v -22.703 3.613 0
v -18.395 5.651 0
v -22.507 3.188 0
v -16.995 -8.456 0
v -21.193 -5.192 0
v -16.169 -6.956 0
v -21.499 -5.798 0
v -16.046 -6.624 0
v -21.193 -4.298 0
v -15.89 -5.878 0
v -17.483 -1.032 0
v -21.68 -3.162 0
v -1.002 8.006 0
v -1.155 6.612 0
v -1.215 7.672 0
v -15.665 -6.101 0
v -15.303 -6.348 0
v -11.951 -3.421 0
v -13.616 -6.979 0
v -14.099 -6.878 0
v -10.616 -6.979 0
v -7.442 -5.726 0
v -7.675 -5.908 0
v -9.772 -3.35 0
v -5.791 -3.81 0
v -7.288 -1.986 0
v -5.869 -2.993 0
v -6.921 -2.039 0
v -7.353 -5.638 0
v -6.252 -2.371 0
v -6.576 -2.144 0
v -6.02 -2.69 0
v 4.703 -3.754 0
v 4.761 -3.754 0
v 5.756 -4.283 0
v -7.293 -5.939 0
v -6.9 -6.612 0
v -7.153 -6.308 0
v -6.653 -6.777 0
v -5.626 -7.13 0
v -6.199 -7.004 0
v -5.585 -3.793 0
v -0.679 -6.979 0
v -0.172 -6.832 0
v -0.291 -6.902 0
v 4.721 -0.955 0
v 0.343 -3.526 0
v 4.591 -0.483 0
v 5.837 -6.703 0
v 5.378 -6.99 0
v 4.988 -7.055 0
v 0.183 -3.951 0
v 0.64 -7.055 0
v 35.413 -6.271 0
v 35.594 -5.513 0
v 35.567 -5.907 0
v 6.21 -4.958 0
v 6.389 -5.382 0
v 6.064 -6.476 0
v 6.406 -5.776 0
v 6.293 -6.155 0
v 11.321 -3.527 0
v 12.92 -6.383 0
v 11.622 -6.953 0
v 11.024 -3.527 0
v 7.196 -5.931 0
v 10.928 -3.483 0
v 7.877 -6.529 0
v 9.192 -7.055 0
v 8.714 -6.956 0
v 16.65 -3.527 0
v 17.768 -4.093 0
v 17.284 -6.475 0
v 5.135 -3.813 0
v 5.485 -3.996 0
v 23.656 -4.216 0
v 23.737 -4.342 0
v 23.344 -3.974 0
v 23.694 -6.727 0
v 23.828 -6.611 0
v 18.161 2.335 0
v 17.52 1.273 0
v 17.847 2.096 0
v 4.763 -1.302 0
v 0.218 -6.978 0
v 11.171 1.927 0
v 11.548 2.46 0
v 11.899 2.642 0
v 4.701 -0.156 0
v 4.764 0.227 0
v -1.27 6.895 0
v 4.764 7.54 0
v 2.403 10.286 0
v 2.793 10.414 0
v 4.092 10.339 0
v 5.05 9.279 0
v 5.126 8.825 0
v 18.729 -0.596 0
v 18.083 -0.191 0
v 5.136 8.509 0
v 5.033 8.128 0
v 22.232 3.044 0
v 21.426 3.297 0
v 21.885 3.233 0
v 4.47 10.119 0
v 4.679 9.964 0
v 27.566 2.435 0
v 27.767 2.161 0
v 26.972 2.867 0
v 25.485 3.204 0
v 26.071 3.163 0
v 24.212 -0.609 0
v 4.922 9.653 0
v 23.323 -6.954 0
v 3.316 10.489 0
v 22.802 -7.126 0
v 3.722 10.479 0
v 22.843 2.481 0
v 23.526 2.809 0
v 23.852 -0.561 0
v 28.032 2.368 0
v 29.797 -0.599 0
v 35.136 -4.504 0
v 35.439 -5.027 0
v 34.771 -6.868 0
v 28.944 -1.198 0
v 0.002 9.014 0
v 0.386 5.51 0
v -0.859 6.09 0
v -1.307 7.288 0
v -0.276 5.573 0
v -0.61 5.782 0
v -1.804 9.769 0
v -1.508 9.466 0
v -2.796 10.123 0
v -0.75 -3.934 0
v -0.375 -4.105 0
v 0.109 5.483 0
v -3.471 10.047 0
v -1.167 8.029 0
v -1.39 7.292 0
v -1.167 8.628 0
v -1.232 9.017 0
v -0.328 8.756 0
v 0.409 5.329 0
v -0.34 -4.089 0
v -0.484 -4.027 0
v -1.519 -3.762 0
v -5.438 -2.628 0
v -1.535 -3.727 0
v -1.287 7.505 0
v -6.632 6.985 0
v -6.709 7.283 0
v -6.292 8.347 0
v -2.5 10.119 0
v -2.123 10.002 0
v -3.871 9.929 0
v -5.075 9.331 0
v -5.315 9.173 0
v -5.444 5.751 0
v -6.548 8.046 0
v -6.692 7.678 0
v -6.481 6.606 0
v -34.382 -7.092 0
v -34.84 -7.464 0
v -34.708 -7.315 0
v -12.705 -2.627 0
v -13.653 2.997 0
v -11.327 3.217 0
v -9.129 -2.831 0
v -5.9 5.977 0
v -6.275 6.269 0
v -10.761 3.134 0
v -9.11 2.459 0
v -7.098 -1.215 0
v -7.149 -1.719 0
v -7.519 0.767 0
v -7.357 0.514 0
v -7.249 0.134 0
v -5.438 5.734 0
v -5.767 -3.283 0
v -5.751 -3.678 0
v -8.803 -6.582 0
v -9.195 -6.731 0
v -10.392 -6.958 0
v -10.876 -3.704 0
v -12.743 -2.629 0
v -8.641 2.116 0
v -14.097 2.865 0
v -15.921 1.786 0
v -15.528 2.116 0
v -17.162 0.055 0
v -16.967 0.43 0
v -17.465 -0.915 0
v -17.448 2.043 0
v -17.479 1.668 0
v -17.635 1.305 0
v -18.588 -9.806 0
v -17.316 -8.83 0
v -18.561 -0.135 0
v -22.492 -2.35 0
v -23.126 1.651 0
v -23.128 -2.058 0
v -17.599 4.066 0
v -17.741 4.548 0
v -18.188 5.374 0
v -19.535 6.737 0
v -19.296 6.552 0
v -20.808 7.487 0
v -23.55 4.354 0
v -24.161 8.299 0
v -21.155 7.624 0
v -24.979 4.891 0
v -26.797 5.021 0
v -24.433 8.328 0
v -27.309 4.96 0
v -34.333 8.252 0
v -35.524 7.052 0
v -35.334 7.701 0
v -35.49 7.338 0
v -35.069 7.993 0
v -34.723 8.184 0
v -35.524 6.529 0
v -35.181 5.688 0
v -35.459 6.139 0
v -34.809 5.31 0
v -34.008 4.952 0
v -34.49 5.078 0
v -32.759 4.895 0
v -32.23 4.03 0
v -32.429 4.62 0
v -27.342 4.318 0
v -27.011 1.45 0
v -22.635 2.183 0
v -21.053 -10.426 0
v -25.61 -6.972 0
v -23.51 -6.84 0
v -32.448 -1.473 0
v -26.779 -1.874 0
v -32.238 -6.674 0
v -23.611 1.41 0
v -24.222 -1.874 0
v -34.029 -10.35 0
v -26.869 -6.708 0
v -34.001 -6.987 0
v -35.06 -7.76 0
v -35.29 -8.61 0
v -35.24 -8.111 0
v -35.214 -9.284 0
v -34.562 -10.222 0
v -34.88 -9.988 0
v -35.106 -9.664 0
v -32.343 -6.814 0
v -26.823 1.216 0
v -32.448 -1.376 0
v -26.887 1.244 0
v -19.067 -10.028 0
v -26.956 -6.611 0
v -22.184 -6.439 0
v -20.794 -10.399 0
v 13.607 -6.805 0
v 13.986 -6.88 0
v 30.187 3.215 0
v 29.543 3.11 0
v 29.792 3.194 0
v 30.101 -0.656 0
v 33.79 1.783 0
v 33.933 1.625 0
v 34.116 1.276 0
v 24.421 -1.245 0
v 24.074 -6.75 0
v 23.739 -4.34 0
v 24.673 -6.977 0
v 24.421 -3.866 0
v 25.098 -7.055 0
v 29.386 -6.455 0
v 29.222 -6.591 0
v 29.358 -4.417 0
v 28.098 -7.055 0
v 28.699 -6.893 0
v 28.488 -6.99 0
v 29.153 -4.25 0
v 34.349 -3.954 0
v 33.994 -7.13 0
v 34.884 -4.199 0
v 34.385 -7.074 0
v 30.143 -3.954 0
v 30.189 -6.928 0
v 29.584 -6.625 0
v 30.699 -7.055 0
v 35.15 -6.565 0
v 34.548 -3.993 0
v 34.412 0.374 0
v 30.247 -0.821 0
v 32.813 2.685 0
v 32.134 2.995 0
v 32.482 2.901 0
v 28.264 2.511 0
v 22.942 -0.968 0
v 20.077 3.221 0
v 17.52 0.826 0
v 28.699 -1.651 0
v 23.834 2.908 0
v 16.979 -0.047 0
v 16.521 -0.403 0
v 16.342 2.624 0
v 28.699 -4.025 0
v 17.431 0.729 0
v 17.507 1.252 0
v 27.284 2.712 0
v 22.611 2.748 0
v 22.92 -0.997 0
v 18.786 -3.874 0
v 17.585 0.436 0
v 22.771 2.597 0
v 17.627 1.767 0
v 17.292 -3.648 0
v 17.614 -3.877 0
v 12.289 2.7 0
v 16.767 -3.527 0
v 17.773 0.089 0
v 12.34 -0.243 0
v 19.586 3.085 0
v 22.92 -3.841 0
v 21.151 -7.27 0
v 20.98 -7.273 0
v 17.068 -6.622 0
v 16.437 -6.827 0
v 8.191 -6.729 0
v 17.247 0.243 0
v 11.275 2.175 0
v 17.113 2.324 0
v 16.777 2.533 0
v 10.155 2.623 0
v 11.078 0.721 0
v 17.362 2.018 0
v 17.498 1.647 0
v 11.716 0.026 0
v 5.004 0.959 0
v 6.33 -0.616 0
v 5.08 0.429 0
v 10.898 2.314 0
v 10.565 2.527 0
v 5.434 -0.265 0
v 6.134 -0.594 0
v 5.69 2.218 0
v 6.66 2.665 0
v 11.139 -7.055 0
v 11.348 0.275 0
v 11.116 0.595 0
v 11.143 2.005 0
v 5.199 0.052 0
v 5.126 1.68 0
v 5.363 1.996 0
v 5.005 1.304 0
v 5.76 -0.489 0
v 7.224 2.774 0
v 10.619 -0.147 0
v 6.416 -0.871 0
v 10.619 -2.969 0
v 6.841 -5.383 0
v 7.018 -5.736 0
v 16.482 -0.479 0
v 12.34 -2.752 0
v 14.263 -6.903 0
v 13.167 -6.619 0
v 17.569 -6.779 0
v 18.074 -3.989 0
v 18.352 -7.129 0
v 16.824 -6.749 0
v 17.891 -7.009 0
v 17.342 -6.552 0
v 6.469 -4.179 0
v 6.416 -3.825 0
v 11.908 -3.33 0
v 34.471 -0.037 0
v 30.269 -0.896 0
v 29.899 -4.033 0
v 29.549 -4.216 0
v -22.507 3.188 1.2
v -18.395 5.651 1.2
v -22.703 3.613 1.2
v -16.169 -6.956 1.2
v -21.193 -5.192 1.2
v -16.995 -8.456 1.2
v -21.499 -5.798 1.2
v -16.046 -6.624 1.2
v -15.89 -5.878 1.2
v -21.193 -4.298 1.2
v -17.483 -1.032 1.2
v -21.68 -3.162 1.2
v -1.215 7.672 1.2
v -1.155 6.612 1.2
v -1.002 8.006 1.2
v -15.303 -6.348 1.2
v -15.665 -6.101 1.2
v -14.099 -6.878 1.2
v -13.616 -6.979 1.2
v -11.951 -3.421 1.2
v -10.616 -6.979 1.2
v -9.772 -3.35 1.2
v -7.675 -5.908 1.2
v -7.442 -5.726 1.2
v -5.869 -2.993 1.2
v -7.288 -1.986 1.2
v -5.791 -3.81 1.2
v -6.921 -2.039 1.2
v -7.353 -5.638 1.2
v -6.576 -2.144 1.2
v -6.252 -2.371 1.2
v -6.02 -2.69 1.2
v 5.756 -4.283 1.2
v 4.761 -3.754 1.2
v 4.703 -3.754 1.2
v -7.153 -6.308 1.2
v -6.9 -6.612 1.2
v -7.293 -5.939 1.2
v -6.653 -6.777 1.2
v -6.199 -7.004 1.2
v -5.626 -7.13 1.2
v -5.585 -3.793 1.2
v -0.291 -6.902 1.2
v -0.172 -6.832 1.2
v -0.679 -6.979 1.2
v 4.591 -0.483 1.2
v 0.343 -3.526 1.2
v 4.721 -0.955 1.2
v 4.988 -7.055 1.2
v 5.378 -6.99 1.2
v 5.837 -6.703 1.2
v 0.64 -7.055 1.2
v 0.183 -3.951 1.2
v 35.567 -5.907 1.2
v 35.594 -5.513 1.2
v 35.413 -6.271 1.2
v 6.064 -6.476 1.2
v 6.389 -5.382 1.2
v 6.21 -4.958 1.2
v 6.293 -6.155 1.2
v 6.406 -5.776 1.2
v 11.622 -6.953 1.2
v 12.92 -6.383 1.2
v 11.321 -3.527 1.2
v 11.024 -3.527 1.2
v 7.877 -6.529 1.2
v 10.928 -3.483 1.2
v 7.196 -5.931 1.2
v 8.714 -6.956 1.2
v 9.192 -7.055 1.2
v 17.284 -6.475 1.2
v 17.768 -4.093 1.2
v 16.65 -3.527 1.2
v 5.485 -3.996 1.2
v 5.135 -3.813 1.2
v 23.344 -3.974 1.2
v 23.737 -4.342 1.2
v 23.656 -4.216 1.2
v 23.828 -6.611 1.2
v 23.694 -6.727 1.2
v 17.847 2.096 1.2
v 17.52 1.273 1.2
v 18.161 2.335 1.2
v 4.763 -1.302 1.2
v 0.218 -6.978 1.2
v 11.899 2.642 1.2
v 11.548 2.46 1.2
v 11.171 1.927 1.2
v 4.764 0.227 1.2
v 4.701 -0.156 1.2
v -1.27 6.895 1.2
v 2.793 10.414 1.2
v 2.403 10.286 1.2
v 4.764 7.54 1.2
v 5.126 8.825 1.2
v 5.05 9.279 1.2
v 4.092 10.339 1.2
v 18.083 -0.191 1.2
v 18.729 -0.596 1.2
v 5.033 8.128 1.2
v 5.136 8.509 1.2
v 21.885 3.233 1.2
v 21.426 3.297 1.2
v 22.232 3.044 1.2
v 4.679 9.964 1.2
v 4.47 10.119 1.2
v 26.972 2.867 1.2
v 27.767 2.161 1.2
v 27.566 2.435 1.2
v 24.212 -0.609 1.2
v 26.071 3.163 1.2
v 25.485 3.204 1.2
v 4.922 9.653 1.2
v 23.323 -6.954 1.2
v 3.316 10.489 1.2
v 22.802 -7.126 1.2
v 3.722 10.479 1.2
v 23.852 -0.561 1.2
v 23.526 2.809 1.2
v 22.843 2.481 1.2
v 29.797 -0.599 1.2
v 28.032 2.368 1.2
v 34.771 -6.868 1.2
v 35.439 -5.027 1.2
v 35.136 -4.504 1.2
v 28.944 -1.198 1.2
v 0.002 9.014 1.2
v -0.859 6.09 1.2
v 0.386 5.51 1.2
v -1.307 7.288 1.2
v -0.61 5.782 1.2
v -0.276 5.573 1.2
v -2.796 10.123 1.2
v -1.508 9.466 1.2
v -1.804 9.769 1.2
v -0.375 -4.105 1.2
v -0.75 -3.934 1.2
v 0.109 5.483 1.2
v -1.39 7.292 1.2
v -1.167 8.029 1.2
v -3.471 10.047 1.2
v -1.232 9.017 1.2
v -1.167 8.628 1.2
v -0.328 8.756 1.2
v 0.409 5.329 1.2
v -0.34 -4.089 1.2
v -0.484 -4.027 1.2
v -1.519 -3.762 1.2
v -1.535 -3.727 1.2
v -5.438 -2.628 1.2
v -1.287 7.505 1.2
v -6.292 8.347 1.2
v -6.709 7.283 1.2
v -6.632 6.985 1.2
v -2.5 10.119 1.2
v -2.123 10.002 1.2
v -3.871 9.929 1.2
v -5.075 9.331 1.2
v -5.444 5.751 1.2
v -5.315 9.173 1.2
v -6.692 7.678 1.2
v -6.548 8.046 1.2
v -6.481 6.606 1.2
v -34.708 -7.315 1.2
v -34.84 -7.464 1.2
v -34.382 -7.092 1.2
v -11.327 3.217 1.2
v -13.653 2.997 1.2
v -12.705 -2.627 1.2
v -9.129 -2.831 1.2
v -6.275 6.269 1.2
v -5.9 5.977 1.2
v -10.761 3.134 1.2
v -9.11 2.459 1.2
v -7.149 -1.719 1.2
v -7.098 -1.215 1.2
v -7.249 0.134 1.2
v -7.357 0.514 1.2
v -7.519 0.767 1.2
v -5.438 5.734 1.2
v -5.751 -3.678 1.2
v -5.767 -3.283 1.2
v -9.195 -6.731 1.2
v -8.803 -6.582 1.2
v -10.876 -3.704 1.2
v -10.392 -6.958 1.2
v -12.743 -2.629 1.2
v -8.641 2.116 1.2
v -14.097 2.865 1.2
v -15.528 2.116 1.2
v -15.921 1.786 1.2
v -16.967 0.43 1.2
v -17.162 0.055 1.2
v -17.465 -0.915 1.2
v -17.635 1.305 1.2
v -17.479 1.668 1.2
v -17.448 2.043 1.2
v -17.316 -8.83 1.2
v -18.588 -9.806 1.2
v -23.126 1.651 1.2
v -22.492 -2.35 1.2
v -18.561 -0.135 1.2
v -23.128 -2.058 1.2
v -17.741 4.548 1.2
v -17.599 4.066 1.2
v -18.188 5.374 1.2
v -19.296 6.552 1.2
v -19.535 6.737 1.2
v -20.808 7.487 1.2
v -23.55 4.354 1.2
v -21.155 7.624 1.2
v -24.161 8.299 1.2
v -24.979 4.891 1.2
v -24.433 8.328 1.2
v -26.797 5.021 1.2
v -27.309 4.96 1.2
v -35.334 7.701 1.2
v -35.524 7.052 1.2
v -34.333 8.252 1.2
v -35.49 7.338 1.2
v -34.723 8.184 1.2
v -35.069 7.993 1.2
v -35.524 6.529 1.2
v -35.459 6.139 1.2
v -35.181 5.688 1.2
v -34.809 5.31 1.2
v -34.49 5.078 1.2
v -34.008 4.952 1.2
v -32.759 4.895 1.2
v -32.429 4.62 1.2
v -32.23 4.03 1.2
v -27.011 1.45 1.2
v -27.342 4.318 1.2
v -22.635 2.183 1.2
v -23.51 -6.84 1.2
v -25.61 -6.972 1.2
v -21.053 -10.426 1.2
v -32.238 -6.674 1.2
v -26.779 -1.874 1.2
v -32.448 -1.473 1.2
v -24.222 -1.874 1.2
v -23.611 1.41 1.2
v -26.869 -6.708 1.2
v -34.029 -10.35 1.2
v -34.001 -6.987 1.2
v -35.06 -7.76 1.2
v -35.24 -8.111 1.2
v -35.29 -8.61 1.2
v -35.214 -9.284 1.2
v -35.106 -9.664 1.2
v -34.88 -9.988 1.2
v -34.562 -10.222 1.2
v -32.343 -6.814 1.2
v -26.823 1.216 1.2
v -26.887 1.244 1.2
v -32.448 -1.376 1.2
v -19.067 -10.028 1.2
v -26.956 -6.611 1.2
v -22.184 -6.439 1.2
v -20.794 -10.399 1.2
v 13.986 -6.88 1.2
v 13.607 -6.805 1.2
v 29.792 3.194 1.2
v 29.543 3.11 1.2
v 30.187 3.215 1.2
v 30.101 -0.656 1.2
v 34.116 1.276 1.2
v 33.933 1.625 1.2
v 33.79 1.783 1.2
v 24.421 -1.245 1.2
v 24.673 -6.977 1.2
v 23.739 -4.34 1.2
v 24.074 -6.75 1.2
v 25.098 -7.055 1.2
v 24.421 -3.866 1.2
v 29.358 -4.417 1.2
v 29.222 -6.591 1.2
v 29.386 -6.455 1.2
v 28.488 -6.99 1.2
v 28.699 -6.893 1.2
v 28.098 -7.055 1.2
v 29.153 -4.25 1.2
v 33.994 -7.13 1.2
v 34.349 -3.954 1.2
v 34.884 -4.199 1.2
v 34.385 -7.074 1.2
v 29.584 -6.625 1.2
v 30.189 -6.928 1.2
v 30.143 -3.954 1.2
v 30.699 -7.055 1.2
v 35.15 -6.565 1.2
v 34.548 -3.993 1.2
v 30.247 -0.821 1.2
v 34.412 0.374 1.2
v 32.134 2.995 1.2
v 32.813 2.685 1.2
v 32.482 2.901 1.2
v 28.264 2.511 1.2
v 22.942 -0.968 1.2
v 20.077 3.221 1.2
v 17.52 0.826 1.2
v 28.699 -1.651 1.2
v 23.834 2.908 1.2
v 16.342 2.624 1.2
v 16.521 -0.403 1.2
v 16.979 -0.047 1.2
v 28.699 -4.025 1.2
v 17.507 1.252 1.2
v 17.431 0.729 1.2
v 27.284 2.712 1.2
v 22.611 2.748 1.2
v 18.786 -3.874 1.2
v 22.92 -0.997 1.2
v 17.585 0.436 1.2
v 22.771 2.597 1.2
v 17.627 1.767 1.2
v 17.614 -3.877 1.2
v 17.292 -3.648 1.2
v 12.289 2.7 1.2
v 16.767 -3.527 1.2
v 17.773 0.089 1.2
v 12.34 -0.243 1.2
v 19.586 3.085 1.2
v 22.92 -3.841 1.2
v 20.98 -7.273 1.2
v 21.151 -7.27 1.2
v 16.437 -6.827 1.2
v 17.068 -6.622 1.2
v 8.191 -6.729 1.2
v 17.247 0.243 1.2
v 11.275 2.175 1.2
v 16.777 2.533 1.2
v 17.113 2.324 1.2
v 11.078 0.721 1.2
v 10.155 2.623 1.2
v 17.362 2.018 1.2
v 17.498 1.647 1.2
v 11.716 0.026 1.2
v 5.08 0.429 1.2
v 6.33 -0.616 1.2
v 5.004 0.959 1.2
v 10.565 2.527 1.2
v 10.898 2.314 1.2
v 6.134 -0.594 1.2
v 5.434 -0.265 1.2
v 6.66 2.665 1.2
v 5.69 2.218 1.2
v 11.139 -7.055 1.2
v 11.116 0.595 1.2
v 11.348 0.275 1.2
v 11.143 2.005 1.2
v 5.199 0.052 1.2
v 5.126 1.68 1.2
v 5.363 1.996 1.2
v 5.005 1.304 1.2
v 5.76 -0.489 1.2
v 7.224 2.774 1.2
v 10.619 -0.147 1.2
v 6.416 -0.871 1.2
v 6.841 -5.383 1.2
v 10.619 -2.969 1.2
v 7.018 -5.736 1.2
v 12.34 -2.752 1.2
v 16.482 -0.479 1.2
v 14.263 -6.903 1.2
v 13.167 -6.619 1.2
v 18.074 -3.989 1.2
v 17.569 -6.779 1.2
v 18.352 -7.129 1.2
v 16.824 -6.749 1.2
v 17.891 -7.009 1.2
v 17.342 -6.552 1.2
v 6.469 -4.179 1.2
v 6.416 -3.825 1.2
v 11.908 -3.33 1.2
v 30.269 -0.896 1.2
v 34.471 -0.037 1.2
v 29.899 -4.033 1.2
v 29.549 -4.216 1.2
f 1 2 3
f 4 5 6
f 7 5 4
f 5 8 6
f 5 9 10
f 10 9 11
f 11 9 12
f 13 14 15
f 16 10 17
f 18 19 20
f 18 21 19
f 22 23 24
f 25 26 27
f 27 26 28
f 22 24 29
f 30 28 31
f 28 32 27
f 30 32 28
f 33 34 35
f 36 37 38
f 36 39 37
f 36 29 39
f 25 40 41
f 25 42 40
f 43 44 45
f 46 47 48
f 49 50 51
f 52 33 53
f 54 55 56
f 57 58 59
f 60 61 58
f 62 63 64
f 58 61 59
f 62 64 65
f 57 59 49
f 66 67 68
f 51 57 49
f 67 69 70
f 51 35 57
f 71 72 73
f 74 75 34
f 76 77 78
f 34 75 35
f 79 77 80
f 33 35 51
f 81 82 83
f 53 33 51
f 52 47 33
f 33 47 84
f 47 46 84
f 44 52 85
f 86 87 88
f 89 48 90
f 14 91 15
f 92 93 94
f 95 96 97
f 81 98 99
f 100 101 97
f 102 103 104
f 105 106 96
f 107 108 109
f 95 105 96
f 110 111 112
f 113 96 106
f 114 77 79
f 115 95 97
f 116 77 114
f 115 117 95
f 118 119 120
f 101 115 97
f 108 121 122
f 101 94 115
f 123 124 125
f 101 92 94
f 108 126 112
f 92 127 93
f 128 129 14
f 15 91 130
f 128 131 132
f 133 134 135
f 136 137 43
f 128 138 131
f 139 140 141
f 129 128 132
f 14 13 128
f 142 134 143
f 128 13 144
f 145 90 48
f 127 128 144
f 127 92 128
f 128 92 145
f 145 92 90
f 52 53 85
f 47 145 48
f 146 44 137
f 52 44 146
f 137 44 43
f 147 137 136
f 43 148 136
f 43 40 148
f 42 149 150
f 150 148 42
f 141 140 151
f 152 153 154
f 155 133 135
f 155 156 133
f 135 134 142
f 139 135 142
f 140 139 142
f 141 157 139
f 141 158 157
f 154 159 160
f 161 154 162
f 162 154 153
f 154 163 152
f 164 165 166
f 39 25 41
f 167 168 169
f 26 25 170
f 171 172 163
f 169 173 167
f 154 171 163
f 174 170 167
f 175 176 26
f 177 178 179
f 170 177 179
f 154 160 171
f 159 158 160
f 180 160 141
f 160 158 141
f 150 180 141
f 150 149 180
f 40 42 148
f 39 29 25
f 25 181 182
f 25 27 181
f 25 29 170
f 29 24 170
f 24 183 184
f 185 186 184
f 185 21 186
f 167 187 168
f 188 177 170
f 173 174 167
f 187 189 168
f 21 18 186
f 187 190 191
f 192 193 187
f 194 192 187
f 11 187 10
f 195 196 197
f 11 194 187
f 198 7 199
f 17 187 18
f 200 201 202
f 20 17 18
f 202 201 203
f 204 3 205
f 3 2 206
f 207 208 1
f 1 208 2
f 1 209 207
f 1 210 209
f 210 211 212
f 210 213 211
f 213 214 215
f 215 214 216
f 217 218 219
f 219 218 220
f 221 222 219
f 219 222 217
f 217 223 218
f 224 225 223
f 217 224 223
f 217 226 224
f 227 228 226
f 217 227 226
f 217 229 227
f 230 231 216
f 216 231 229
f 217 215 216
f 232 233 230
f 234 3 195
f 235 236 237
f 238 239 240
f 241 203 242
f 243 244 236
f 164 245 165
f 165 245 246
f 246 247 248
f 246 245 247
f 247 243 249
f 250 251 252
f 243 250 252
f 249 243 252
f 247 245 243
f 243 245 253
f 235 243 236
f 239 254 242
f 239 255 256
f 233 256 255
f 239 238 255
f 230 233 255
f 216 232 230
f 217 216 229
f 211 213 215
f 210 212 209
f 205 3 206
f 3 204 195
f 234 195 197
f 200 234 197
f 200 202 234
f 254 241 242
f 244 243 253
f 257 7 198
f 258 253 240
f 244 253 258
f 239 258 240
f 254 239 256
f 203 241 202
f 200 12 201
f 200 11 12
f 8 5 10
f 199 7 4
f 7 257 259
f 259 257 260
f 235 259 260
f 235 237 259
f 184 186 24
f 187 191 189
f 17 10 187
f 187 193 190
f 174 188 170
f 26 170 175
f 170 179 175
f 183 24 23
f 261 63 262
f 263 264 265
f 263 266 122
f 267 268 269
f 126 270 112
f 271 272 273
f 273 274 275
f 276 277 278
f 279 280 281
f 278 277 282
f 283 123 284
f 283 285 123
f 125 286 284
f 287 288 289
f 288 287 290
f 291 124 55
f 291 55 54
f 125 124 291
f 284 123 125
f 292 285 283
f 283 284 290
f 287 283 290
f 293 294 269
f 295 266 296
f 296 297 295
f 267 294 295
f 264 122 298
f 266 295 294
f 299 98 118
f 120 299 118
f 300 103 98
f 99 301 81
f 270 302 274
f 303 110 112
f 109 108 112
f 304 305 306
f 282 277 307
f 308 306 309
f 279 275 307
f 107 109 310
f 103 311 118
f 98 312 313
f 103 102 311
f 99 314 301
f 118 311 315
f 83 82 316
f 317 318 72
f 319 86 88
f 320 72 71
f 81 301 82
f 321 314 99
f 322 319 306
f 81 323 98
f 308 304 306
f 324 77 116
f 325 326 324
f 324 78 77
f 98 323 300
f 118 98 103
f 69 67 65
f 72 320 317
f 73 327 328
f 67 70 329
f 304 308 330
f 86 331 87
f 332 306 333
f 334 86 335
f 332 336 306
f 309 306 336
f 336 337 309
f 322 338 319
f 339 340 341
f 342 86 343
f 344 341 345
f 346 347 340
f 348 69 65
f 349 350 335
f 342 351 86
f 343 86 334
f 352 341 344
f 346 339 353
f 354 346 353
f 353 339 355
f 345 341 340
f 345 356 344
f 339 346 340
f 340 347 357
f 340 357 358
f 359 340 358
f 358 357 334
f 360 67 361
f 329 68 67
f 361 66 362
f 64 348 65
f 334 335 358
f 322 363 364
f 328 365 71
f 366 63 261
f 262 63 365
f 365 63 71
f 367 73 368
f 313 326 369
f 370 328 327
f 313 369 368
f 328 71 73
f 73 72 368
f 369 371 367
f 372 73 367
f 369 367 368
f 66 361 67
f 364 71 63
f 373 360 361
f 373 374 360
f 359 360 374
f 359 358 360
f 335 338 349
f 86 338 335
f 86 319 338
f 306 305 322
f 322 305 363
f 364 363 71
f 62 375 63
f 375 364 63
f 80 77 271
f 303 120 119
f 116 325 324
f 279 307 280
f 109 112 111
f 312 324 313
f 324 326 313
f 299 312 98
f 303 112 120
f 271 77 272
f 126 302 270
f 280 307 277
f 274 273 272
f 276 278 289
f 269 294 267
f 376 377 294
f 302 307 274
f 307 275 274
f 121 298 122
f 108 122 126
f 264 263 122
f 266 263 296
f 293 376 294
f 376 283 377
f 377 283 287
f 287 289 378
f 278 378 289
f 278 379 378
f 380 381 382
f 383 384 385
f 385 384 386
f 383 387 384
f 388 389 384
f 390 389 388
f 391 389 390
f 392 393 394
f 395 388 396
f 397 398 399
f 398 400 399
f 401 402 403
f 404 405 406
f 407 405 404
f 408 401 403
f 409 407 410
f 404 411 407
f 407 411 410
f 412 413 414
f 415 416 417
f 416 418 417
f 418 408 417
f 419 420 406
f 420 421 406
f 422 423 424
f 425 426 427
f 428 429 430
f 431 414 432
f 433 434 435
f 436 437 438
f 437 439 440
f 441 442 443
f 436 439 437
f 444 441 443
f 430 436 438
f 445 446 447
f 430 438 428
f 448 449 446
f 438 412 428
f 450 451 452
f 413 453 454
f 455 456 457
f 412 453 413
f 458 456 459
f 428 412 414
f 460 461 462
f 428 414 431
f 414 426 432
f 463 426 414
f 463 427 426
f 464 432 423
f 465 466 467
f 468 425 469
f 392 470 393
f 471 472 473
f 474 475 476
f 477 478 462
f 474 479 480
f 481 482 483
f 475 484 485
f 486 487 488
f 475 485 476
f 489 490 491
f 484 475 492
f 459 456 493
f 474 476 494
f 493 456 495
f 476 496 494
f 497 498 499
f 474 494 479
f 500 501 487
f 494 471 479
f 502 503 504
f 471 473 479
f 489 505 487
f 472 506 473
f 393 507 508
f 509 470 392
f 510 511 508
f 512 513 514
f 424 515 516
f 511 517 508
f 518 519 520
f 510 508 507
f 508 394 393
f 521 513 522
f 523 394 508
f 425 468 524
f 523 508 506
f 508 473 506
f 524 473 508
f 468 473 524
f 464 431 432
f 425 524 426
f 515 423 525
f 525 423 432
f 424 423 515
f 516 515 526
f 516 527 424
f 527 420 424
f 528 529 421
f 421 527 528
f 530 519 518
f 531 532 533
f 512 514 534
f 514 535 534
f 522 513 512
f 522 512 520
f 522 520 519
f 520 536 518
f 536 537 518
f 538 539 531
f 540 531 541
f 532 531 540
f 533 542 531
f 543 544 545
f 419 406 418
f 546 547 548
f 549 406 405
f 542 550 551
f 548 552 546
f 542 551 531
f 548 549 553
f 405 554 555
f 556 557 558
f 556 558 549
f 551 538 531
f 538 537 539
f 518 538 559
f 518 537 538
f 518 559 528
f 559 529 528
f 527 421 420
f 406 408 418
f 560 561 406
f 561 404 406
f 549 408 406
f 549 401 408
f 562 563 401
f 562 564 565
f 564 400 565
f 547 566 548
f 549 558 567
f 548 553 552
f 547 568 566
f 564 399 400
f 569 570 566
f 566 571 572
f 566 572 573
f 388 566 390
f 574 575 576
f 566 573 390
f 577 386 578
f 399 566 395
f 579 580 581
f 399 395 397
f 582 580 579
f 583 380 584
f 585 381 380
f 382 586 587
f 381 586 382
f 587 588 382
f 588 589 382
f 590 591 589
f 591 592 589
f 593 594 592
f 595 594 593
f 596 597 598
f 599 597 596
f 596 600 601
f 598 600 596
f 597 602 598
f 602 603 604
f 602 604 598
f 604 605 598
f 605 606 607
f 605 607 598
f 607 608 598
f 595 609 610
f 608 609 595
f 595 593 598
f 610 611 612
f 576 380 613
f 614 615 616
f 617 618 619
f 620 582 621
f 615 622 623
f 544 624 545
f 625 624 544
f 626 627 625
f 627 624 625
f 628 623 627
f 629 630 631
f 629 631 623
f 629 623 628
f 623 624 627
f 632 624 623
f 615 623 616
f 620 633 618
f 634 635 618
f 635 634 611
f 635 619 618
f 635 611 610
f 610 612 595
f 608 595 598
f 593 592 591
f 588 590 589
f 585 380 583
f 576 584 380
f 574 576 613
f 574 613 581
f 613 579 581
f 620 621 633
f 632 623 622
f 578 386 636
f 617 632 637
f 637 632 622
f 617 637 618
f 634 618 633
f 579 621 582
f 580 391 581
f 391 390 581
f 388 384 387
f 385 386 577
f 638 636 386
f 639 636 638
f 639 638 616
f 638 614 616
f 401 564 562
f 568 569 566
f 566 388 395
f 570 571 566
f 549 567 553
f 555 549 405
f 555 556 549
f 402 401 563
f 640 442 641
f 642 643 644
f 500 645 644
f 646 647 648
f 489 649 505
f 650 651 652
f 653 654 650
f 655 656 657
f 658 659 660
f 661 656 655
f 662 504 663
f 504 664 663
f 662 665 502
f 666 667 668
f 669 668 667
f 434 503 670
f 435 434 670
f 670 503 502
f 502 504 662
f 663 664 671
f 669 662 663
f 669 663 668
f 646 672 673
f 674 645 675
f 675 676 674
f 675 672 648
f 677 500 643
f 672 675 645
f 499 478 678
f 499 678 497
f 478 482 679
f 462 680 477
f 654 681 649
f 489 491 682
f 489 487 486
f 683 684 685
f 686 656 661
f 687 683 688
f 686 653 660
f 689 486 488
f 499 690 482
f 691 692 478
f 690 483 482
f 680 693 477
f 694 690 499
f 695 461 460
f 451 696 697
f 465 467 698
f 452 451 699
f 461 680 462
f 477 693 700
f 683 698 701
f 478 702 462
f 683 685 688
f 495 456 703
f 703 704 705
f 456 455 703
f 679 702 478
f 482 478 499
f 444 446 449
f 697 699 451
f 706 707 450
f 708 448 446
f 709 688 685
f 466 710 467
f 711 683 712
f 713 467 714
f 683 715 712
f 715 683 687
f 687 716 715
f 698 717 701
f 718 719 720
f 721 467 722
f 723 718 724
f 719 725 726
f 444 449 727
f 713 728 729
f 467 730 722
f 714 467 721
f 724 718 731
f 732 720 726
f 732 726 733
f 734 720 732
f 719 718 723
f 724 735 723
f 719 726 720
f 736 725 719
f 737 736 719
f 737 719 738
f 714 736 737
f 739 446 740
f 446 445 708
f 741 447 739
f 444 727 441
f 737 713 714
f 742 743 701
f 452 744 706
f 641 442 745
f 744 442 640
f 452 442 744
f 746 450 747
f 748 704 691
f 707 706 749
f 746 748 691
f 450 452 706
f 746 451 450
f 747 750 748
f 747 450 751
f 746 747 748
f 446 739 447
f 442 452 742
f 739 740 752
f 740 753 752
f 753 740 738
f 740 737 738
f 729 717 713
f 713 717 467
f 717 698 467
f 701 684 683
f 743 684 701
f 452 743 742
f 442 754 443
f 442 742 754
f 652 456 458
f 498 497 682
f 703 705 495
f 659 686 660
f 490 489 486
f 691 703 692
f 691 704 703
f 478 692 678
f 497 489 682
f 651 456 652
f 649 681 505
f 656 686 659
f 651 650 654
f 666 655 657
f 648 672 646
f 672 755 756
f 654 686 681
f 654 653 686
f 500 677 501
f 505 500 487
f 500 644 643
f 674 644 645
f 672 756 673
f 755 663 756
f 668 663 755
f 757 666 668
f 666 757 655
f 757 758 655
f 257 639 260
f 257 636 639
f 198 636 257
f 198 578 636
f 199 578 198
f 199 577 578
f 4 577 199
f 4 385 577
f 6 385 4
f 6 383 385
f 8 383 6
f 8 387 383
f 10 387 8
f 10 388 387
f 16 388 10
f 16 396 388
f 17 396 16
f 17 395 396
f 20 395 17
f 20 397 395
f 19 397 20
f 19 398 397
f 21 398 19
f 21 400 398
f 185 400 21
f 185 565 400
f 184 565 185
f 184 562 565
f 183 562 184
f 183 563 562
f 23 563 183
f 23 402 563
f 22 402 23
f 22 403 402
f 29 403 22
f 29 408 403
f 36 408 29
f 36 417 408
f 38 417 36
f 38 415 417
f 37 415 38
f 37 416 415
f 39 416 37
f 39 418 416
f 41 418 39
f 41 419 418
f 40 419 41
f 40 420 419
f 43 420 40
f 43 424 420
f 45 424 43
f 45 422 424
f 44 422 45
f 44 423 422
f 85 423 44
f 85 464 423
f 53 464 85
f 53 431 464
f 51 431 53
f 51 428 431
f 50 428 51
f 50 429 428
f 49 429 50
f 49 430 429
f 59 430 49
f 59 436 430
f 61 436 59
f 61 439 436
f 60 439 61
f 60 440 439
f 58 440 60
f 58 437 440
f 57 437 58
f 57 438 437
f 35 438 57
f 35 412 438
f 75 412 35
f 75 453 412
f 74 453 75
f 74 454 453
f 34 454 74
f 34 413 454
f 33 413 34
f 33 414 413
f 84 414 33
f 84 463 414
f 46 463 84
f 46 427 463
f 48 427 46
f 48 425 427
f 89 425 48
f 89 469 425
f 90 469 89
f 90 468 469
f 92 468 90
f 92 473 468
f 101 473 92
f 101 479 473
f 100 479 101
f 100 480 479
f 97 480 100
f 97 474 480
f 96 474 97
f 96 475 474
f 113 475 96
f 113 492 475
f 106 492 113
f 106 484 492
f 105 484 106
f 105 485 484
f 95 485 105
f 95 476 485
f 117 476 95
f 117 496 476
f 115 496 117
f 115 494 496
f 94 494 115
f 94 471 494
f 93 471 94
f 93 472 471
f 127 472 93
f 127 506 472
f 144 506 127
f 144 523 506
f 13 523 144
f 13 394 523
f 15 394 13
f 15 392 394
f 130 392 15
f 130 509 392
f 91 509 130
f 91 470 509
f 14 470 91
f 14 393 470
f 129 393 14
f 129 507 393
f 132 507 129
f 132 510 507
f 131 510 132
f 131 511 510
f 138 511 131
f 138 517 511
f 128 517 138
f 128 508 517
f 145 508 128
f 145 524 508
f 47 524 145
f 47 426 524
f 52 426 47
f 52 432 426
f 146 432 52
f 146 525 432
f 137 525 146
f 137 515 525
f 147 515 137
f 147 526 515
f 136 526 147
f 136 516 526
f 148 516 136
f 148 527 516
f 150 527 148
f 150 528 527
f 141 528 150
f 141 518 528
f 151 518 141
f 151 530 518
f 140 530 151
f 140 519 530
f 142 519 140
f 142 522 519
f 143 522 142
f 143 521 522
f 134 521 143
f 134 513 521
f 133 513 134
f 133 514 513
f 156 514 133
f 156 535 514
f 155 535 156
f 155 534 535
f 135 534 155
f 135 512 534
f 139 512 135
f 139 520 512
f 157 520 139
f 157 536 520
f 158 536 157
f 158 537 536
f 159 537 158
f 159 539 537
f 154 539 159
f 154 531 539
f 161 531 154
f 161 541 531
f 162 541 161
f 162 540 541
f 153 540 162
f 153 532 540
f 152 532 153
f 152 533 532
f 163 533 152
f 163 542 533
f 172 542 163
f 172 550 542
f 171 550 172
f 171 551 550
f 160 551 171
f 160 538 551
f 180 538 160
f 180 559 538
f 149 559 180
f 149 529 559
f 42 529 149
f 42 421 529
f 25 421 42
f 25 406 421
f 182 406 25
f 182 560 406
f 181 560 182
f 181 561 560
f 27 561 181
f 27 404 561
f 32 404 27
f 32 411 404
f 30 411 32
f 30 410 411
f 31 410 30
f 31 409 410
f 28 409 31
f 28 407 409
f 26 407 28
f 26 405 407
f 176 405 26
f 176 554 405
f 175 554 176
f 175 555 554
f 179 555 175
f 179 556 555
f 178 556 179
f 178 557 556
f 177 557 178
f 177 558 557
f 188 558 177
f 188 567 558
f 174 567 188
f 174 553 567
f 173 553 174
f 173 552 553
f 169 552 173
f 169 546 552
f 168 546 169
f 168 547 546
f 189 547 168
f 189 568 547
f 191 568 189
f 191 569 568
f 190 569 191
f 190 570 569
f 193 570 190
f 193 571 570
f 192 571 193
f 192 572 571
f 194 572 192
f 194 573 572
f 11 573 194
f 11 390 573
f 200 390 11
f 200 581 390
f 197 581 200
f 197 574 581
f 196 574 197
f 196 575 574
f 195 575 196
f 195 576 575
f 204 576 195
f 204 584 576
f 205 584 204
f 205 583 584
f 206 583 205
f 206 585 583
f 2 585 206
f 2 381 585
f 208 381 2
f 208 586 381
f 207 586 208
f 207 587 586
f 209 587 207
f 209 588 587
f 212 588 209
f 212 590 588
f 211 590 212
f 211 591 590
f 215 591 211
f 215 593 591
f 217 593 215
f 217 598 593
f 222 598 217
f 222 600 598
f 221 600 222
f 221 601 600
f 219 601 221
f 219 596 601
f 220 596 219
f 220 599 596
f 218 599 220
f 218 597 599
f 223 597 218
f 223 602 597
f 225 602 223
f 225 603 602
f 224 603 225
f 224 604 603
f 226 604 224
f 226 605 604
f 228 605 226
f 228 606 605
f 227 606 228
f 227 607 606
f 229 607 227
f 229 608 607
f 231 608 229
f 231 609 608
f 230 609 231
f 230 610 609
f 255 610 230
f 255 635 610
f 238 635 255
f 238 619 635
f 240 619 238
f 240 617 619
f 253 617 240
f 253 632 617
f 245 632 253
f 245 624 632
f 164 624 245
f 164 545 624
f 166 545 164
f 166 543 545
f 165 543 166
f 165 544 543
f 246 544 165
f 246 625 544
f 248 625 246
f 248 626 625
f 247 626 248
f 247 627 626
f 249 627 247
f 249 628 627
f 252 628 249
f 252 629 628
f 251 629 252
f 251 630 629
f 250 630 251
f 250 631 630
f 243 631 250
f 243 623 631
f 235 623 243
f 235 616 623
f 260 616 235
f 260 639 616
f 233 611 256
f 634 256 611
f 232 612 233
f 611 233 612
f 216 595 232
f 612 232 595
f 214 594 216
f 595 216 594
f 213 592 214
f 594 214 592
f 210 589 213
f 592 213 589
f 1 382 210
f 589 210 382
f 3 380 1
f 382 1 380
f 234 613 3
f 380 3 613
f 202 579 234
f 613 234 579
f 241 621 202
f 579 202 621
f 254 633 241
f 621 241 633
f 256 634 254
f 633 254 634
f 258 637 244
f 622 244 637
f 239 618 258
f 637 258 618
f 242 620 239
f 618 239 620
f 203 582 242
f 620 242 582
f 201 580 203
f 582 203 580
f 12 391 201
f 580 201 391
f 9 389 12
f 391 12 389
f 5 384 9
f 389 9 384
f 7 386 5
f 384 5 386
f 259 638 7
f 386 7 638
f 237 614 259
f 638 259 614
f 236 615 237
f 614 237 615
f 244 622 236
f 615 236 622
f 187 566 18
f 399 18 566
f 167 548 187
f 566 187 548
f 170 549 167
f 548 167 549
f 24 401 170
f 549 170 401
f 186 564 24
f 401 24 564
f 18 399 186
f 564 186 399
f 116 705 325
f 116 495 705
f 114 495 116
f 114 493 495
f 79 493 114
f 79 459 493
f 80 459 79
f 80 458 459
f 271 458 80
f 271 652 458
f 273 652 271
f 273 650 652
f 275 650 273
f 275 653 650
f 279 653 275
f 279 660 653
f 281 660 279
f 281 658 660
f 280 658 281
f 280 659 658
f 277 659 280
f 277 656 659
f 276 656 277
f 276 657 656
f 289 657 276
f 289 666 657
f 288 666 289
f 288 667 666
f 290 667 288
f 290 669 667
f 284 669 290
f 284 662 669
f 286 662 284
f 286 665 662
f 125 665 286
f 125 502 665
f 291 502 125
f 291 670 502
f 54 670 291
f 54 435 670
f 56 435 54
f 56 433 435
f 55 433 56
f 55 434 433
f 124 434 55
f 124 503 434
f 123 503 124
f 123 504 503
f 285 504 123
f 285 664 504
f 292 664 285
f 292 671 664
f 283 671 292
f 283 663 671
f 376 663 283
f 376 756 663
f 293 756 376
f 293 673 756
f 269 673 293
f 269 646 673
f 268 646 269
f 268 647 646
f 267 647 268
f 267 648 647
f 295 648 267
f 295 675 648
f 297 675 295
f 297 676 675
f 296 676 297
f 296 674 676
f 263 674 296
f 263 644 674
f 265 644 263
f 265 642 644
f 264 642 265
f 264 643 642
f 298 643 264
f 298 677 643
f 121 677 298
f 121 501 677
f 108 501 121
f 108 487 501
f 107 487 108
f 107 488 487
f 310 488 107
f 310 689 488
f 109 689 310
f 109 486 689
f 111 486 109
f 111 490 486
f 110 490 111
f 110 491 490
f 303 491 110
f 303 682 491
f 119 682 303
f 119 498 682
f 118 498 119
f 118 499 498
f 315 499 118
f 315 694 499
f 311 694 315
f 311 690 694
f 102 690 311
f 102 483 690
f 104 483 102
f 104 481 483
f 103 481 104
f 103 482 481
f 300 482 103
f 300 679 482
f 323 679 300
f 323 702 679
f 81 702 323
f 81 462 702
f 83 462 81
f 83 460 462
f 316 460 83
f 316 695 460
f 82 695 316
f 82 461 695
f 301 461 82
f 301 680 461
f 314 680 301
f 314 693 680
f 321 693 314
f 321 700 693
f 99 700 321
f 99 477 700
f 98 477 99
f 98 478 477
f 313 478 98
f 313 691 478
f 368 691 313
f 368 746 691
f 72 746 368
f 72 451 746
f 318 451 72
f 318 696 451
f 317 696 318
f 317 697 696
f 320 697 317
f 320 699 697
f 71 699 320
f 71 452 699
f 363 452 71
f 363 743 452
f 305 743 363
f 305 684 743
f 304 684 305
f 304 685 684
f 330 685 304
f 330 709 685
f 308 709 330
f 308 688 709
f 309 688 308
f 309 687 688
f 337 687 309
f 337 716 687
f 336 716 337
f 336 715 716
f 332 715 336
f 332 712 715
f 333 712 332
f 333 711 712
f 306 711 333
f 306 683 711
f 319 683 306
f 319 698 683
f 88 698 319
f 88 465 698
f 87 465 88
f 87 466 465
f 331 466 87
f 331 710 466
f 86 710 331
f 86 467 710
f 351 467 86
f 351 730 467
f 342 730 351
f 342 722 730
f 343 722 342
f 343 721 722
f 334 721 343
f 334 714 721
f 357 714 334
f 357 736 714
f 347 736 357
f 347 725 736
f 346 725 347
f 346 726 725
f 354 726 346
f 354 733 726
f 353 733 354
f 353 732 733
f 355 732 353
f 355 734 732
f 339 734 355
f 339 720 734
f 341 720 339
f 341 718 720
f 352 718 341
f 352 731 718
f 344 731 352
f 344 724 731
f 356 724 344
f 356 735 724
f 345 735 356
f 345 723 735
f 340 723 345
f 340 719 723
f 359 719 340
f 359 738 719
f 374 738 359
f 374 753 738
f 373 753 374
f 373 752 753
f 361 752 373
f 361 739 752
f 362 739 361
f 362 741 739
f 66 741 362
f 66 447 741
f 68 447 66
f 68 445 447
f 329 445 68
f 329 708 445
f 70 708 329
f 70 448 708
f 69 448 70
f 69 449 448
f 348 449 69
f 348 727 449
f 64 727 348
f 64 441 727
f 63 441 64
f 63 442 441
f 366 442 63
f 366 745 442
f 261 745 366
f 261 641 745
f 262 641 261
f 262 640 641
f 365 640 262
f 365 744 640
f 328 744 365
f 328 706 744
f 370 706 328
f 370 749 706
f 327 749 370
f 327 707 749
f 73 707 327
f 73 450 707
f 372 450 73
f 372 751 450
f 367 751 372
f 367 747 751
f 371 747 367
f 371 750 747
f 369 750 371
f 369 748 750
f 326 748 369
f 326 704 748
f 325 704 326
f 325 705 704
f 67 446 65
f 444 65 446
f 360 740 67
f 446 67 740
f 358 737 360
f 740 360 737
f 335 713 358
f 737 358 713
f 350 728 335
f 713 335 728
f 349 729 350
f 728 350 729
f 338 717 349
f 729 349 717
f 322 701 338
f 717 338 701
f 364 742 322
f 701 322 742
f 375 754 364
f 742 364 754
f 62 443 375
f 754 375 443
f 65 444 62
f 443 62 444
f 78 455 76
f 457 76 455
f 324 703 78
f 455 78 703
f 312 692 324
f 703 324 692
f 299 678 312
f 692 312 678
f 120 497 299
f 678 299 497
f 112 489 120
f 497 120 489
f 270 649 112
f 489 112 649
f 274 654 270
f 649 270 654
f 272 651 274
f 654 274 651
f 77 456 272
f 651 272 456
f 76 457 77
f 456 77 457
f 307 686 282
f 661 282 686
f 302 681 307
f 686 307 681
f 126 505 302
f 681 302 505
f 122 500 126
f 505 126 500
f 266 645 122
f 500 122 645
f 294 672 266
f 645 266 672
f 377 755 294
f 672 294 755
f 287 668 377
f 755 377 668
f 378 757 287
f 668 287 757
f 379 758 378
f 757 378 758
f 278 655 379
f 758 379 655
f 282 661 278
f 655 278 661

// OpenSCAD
// file: bellum_text_traced.scad
// bellum_text_traced.scad
// "Bellum" lettering traced from the source logo image with
// OpenCV (4x cubic upscale, threshold, morphological cleanup,
// approxPolyDP 2px). Coordinates are centered, Y-up, and
// normalized to 100 units of total width.
// Regenerate with scratchpad/trace2_emit.py if retuning.

module bellum_traced_2d() {
    polygon(points=[[-49.89,10.25],[-49.89,9.49],[-49.35,8.94],[-46.95,8.83],[-45.64,7.74],[-45.09,6.11],[-45.42,-2.07],[-45.09,-10.25],[-46.07,-11.56],[-49.24,-11.89],[-49.56,-12.32],[-49.45,-13.30],[-30.59,-13.41],[-28.08,-12.87],[-26.23,-11.45],[-25.03,-9.27],[-24.48,-6.65],[-25.03,-4.80],[-26.01,-3.27],[-29.28,-0.55],[-27.10,2.84],[-27.32,5.78],[-27.97,6.98],[-29.28,8.29],[-31.13,9.38],[-35.50,10.36],[-40.62,-1.42],[-39.97,-0.98],[-35.06,-0.98],[-33.10,-1.31],[-31.68,-1.96],[-30.04,-3.60],[-29.06,-5.89],[-29.06,-7.96],[-29.83,-9.49],[-31.35,-10.91],[-33.86,-11.67],[-37.35,-11.89],[-39.97,-11.34],[-40.95,-10.25],[-41.38,8.40],[-40.84,8.83],[-38.99,9.05],[-35.93,8.83],[-33.32,7.85],[-31.57,6.32],[-30.92,4.91],[-31.24,2.40],[-32.55,0.98],[-33.86,0.33],[-39.31,0.00],[-40.29,0.44],[-40.95,1.53],[-41.49,6.22]], paths=[[0, 1, 2, 3, 4, 5, 6, 7, 8, 9, 10, 11, 12, 13, 14, 15, 16, 17, 18, 19, 20, 21, 22, 23, 24, 25], [26, 27, 28, 29, 30, 31, 32, 33, 34, 35, 36, 37, 38, 39], [40, 41, 42, 43, 44, 45, 46, 47, 48, 49, 50, 51, 52, 53]]);
    polygon(points=[[-21.76,1.53],[-23.28,-0.44],[-23.72,-1.85],[-23.72,-3.82],[-22.96,-6.22],[-21.54,-7.63],[-19.79,-8.40],[-15.43,-8.40],[-13.69,-8.07],[-12.05,-7.09],[-10.09,-5.13],[-10.31,-4.69],[-11.07,-4.58],[-13.36,-6.43],[-15.76,-7.20],[-18.27,-6.54],[-20.34,-4.47],[-20.77,-3.49],[-20.67,-2.62],[-20.01,-2.18],[-18.48,-2.07],[-12.70,-2.40],[-12.05,-1.96],[-12.27,0.00],[-13.90,1.96],[-16.30,2.94],[-19.68,2.62],[-20.34,-0.22],[-19.47,0.98],[-17.61,1.96],[-15.98,1.53],[-14.78,0.00],[-14.99,-0.76],[-15.98,-0.98],[-20.01,-0.98]], paths=[[0, 1, 2, 3, 4, 5, 6, 7, 8, 9, 10, 11, 12, 13, 14, 15, 16, 17, 18, 19, 20, 21, 22, 23, 24, 25, 26], [27, 28, 29, 30, 31, 32, 33, 34]]);
    polygon(points=[[-3.87,12.98],[-4.85,12.87],[-6.60,12.00],[-8.02,10.80],[-7.80,10.25],[-6.49,9.60],[-6.16,8.62],[-6.16,-3.93],[-6.49,-6.54],[-7.36,-7.20],[-8.67,-7.31],[-9.00,-7.74],[-8.89,-8.29],[-8.23,-8.62],[-1.04,-8.40],[-1.04,-7.85],[-1.47,-7.42],[-3.44,-6.98],[-3.98,-5.78],[-3.76,11.01],[-3.44,11.67],[-3.44,12.54]], paths=[[0, 1, 2, 3, 4, 5, 6, 7, 8, 9, 10, 11, 12, 13, 14, 15, 16, 17, 18, 19, 20, 21]]);
    polygon(points=[[5.07,13.52],[4.31,13.41],[0.82,11.56],[-0.16,10.47],[0.27,9.71],[1.47,10.03],[2.13,9.49],[2.34,7.85],[2.24,-5.45],[1.58,-7.20],[-0.05,-7.63],[0.05,-8.18],[0.93,-8.51],[7.25,-8.51],[7.58,-8.18],[6.92,-7.20],[6.05,-7.20],[5.07,-6.32],[5.18,-1.85],[4.85,-0.65],[5.18,0.33],[5.18,11.34],[5.73,12.54],[5.62,13.20]], paths=[[0, 1, 2, 3, 4, 5, 6, 7, 8, 9, 10, 11, 12, 13, 14, 15, 16, 17, 18, 19, 20, 21, 22, 23]]);
    polygon(points=[[9.00,1.64],[9.11,0.87],[10.09,0.76],[10.74,0.00],[11.07,-0.98],[11.07,-5.56],[11.61,-7.31],[12.60,-8.18],[13.36,-8.51],[16.19,-8.51],[18.92,-7.31],[19.47,-7.31],[20.12,-8.18],[20.67,-8.29],[23.83,-8.18],[24.48,-7.74],[24.37,-6.87],[23.17,-6.87],[22.52,-6.32],[22.19,-0.33],[22.63,0.55],[23.61,1.31],[23.72,2.07],[17.83,2.18],[17.72,1.64],[19.25,0.98],[19.68,0.22],[19.68,-4.58],[18.38,-6.32],[16.74,-6.87],[15.65,-6.87],[14.67,-6.43],[13.69,-4.80],[13.69,0.22],[14.67,2.07],[10.41,2.29]], paths=[[0, 1, 2, 3, 4, 5, 6, 7, 8, 9, 10, 11, 12, 13, 14, 15, 16, 17, 18, 19, 20, 21, 22, 23, 24, 25, 26, 27, 28, 29, 30, 31, 32, 33, 34, 35]]);
    polygon(points=[[27.21,1.85],[27.21,1.20],[28.95,0.11],[29.06,-6.22],[28.52,-7.20],[26.55,-7.52],[26.44,-8.29],[26.77,-8.62],[30.59,-8.83],[32.99,-8.62],[33.53,-8.29],[33.10,-7.31],[32.12,-7.20],[31.57,-6.65],[31.57,-0.87],[32.22,0.00],[34.41,0.98],[36.04,0.76],[36.70,0.11],[37.24,-1.53],[37.24,-6.00],[36.91,-6.76],[35.50,-7.74],[35.61,-8.18],[36.48,-8.51],[40.84,-8.51],[41.60,-8.07],[41.60,-7.74],[40.51,-7.20],[39.97,-6.43],[39.97,-1.96],[40.73,-0.55],[42.91,0.98],[44.66,0.65],[45.53,-0.33],[45.75,-1.09],[45.53,-6.43],[44.98,-7.20],[44.00,-7.52],[43.78,-8.07],[44.66,-8.51],[49.45,-8.62],[50.00,-8.18],[49.56,-7.42],[48.80,-7.42],[48.15,-6.76],[48.36,0.00],[47.93,1.31],[46.51,2.62],[43.68,2.94],[41.82,2.07],[40.29,0.87],[39.86,0.87],[38.66,2.51],[37.35,2.94],[34.95,2.51],[32.22,1.20],[31.46,1.42],[31.79,2.62],[31.24,3.05],[29.28,2.94]], paths=[[0, 1, 2, 3, 4, 5, 6, 7, 8, 9, 10, 11, 12, 13, 14, 15, 16, 17, 18, 19, 20, 21, 22, 23, 24, 25, 26, 27, 28, 29, 30, 31, 32, 33, 34, 35, 36, 37, 38, 39, 40, 41, 42, 43, 44, 45, 46, 47, 48, 49, 50, 51, 52, 53, 54, 55, 56, 57, 58, 59, 60]]);
}

bellum_traced_2d();
// file: bellum_badge_003.scad
// bellum_badge_003.scad
// v003: corrected layout, measured from the source photo. The design is
//   ONE continuous 45-degree checkerboard filling the whole circle with
//   thin white grout lines and a black tile at dead center - v001/v002's
//   "inner bordered diamond on a solid black ring" was a misreading of
//   the photo (the "border" was grout diagonals, the "black ring" was
//   glare on the glossy button). Proportions from the photo: tile pitch
//   ~0.162 D, grout ~0.008 D, text width ~0.86 D, centered.
// v002: "Bellum" lettering traced from the photo (bellum_text_traced.scad).
//
// Printable parts (print in the named color, glue together):
//   base_disc()          black - 3 mm circle; shows through the lattice
//                        holes as the black tiles
//   white_lattice()      white - 2 mm circle-wide lattice: white tiles +
//                        grout webs, one connected piece
//   black_tiles()        black - optional drop-ins for the full (unclipped)
//                        black tiles, if you want them flush
//   text_plate_black()   black - outline plate behind the letters
//   text_letters_white() white - "Bellum" letters (6 pieces), glue on plate
//
// Everything scales from badge_d; thicknesses and clearance are absolute.

$fa = 2;
$fs = 0.4;

// ---- scale ----
badge_d = 80;       // badge diameter: THE scale knob

// ---- thicknesses (absolute mm, independent of badge_d) ----
t_base = 3;         // black disc
t_top  = 2;         // white lattice and drop-in tiles (total badge = 5)
t_text = 1.2;       // each text layer (plate and letters)
clr    = 0.15;      // per-side XY clearance for the drop-in tiles

// ---- proportions (fractions of badge_d, measured from the photo) ----
pitch_frac = 0.162;                     // checker pitch (tile + grout)
grout_w   = max(0.008 * badge_d, 0.8);  // white web between tiles
text_w    = 0.86 * badge_d;             // width of "Bellum"
outline_w = max(0.015 * badge_d, 1.2);  // black outline around the letters

use <bellum_text_traced.scad>  // lettering traced from the logo photo

// ---- derived ----
R     = badge_d / 2;
pitch = pitch_frac * badge_d;
tile  = pitch - grout_w;                // black/white tile side
half_diag = tile / sqrt(2);             // rotated tile half-diagonal
range = ceil(R / pitch) + 1;

eps = 0.01;

// ---------------- 2D shapes ----------------

// black tile centers: (i+j) even puts a black tile at the exact center
module black_squares_2d(shrink = 0) {
    rotate(45)
        for (i = [-range : range], j = [-range : range])
            if ((i + j) % 2 == 0)
                translate([i * pitch, j * pitch])
                    square(tile - 2 * shrink, center = true);
}

// white tiles + grout webs across the whole circle, one connected piece
module lattice_2d() {
    difference() {
        circle(R);
        black_squares_2d();
    }
}

// traced lettering is normalized to 100 units wide, centered
module text_2d() {
    scale(text_w / 100) bellum_traced_2d();
}

// ---------------- printable parts (each flat on Z=0) ----------------

module base_disc() {
    linear_extrude(t_base) circle(R);
}

module white_lattice() {
    linear_extrude(t_top) lattice_2d();
}

// optional flush inlays for the black tiles that lie fully inside the rim
module black_tiles() {
    rotate(45)
        for (i = [-range : range], j = [-range : range])
            if ((i + j) % 2 == 0
                && norm([i, j]) * pitch + half_diag <= R - 1)
                translate([i * pitch, j * pitch])
                    linear_extrude(t_top)
                        square(tile - 2 * clr, center = true);
}

module text_plate_black() {
    linear_extrude(t_text) offset(r = outline_w) text_2d();
}

module text_letters_white() {
    linear_extrude(t_text) text_2d();
}

// ---------------- assembled preview ----------------

module assembly() {
    color([0.15, 0.15, 0.15]) base_disc();
    color("white") translate([0, 0, t_base]) white_lattice();
    color([0.15, 0.15, 0.15]) translate([0, 0, t_base + t_top])
        text_plate_black();
    color("white") translate([0, 0, t_base + t_top + t_text])
        text_letters_white();
}

assembly();
// main file
// bellum_badge_003_text_black.scad - print in BLACK
// Outline plate behind the letters. Glue onto the checkerboard, centered.
use <bellum_badge_003.scad>
text_plate_black();
